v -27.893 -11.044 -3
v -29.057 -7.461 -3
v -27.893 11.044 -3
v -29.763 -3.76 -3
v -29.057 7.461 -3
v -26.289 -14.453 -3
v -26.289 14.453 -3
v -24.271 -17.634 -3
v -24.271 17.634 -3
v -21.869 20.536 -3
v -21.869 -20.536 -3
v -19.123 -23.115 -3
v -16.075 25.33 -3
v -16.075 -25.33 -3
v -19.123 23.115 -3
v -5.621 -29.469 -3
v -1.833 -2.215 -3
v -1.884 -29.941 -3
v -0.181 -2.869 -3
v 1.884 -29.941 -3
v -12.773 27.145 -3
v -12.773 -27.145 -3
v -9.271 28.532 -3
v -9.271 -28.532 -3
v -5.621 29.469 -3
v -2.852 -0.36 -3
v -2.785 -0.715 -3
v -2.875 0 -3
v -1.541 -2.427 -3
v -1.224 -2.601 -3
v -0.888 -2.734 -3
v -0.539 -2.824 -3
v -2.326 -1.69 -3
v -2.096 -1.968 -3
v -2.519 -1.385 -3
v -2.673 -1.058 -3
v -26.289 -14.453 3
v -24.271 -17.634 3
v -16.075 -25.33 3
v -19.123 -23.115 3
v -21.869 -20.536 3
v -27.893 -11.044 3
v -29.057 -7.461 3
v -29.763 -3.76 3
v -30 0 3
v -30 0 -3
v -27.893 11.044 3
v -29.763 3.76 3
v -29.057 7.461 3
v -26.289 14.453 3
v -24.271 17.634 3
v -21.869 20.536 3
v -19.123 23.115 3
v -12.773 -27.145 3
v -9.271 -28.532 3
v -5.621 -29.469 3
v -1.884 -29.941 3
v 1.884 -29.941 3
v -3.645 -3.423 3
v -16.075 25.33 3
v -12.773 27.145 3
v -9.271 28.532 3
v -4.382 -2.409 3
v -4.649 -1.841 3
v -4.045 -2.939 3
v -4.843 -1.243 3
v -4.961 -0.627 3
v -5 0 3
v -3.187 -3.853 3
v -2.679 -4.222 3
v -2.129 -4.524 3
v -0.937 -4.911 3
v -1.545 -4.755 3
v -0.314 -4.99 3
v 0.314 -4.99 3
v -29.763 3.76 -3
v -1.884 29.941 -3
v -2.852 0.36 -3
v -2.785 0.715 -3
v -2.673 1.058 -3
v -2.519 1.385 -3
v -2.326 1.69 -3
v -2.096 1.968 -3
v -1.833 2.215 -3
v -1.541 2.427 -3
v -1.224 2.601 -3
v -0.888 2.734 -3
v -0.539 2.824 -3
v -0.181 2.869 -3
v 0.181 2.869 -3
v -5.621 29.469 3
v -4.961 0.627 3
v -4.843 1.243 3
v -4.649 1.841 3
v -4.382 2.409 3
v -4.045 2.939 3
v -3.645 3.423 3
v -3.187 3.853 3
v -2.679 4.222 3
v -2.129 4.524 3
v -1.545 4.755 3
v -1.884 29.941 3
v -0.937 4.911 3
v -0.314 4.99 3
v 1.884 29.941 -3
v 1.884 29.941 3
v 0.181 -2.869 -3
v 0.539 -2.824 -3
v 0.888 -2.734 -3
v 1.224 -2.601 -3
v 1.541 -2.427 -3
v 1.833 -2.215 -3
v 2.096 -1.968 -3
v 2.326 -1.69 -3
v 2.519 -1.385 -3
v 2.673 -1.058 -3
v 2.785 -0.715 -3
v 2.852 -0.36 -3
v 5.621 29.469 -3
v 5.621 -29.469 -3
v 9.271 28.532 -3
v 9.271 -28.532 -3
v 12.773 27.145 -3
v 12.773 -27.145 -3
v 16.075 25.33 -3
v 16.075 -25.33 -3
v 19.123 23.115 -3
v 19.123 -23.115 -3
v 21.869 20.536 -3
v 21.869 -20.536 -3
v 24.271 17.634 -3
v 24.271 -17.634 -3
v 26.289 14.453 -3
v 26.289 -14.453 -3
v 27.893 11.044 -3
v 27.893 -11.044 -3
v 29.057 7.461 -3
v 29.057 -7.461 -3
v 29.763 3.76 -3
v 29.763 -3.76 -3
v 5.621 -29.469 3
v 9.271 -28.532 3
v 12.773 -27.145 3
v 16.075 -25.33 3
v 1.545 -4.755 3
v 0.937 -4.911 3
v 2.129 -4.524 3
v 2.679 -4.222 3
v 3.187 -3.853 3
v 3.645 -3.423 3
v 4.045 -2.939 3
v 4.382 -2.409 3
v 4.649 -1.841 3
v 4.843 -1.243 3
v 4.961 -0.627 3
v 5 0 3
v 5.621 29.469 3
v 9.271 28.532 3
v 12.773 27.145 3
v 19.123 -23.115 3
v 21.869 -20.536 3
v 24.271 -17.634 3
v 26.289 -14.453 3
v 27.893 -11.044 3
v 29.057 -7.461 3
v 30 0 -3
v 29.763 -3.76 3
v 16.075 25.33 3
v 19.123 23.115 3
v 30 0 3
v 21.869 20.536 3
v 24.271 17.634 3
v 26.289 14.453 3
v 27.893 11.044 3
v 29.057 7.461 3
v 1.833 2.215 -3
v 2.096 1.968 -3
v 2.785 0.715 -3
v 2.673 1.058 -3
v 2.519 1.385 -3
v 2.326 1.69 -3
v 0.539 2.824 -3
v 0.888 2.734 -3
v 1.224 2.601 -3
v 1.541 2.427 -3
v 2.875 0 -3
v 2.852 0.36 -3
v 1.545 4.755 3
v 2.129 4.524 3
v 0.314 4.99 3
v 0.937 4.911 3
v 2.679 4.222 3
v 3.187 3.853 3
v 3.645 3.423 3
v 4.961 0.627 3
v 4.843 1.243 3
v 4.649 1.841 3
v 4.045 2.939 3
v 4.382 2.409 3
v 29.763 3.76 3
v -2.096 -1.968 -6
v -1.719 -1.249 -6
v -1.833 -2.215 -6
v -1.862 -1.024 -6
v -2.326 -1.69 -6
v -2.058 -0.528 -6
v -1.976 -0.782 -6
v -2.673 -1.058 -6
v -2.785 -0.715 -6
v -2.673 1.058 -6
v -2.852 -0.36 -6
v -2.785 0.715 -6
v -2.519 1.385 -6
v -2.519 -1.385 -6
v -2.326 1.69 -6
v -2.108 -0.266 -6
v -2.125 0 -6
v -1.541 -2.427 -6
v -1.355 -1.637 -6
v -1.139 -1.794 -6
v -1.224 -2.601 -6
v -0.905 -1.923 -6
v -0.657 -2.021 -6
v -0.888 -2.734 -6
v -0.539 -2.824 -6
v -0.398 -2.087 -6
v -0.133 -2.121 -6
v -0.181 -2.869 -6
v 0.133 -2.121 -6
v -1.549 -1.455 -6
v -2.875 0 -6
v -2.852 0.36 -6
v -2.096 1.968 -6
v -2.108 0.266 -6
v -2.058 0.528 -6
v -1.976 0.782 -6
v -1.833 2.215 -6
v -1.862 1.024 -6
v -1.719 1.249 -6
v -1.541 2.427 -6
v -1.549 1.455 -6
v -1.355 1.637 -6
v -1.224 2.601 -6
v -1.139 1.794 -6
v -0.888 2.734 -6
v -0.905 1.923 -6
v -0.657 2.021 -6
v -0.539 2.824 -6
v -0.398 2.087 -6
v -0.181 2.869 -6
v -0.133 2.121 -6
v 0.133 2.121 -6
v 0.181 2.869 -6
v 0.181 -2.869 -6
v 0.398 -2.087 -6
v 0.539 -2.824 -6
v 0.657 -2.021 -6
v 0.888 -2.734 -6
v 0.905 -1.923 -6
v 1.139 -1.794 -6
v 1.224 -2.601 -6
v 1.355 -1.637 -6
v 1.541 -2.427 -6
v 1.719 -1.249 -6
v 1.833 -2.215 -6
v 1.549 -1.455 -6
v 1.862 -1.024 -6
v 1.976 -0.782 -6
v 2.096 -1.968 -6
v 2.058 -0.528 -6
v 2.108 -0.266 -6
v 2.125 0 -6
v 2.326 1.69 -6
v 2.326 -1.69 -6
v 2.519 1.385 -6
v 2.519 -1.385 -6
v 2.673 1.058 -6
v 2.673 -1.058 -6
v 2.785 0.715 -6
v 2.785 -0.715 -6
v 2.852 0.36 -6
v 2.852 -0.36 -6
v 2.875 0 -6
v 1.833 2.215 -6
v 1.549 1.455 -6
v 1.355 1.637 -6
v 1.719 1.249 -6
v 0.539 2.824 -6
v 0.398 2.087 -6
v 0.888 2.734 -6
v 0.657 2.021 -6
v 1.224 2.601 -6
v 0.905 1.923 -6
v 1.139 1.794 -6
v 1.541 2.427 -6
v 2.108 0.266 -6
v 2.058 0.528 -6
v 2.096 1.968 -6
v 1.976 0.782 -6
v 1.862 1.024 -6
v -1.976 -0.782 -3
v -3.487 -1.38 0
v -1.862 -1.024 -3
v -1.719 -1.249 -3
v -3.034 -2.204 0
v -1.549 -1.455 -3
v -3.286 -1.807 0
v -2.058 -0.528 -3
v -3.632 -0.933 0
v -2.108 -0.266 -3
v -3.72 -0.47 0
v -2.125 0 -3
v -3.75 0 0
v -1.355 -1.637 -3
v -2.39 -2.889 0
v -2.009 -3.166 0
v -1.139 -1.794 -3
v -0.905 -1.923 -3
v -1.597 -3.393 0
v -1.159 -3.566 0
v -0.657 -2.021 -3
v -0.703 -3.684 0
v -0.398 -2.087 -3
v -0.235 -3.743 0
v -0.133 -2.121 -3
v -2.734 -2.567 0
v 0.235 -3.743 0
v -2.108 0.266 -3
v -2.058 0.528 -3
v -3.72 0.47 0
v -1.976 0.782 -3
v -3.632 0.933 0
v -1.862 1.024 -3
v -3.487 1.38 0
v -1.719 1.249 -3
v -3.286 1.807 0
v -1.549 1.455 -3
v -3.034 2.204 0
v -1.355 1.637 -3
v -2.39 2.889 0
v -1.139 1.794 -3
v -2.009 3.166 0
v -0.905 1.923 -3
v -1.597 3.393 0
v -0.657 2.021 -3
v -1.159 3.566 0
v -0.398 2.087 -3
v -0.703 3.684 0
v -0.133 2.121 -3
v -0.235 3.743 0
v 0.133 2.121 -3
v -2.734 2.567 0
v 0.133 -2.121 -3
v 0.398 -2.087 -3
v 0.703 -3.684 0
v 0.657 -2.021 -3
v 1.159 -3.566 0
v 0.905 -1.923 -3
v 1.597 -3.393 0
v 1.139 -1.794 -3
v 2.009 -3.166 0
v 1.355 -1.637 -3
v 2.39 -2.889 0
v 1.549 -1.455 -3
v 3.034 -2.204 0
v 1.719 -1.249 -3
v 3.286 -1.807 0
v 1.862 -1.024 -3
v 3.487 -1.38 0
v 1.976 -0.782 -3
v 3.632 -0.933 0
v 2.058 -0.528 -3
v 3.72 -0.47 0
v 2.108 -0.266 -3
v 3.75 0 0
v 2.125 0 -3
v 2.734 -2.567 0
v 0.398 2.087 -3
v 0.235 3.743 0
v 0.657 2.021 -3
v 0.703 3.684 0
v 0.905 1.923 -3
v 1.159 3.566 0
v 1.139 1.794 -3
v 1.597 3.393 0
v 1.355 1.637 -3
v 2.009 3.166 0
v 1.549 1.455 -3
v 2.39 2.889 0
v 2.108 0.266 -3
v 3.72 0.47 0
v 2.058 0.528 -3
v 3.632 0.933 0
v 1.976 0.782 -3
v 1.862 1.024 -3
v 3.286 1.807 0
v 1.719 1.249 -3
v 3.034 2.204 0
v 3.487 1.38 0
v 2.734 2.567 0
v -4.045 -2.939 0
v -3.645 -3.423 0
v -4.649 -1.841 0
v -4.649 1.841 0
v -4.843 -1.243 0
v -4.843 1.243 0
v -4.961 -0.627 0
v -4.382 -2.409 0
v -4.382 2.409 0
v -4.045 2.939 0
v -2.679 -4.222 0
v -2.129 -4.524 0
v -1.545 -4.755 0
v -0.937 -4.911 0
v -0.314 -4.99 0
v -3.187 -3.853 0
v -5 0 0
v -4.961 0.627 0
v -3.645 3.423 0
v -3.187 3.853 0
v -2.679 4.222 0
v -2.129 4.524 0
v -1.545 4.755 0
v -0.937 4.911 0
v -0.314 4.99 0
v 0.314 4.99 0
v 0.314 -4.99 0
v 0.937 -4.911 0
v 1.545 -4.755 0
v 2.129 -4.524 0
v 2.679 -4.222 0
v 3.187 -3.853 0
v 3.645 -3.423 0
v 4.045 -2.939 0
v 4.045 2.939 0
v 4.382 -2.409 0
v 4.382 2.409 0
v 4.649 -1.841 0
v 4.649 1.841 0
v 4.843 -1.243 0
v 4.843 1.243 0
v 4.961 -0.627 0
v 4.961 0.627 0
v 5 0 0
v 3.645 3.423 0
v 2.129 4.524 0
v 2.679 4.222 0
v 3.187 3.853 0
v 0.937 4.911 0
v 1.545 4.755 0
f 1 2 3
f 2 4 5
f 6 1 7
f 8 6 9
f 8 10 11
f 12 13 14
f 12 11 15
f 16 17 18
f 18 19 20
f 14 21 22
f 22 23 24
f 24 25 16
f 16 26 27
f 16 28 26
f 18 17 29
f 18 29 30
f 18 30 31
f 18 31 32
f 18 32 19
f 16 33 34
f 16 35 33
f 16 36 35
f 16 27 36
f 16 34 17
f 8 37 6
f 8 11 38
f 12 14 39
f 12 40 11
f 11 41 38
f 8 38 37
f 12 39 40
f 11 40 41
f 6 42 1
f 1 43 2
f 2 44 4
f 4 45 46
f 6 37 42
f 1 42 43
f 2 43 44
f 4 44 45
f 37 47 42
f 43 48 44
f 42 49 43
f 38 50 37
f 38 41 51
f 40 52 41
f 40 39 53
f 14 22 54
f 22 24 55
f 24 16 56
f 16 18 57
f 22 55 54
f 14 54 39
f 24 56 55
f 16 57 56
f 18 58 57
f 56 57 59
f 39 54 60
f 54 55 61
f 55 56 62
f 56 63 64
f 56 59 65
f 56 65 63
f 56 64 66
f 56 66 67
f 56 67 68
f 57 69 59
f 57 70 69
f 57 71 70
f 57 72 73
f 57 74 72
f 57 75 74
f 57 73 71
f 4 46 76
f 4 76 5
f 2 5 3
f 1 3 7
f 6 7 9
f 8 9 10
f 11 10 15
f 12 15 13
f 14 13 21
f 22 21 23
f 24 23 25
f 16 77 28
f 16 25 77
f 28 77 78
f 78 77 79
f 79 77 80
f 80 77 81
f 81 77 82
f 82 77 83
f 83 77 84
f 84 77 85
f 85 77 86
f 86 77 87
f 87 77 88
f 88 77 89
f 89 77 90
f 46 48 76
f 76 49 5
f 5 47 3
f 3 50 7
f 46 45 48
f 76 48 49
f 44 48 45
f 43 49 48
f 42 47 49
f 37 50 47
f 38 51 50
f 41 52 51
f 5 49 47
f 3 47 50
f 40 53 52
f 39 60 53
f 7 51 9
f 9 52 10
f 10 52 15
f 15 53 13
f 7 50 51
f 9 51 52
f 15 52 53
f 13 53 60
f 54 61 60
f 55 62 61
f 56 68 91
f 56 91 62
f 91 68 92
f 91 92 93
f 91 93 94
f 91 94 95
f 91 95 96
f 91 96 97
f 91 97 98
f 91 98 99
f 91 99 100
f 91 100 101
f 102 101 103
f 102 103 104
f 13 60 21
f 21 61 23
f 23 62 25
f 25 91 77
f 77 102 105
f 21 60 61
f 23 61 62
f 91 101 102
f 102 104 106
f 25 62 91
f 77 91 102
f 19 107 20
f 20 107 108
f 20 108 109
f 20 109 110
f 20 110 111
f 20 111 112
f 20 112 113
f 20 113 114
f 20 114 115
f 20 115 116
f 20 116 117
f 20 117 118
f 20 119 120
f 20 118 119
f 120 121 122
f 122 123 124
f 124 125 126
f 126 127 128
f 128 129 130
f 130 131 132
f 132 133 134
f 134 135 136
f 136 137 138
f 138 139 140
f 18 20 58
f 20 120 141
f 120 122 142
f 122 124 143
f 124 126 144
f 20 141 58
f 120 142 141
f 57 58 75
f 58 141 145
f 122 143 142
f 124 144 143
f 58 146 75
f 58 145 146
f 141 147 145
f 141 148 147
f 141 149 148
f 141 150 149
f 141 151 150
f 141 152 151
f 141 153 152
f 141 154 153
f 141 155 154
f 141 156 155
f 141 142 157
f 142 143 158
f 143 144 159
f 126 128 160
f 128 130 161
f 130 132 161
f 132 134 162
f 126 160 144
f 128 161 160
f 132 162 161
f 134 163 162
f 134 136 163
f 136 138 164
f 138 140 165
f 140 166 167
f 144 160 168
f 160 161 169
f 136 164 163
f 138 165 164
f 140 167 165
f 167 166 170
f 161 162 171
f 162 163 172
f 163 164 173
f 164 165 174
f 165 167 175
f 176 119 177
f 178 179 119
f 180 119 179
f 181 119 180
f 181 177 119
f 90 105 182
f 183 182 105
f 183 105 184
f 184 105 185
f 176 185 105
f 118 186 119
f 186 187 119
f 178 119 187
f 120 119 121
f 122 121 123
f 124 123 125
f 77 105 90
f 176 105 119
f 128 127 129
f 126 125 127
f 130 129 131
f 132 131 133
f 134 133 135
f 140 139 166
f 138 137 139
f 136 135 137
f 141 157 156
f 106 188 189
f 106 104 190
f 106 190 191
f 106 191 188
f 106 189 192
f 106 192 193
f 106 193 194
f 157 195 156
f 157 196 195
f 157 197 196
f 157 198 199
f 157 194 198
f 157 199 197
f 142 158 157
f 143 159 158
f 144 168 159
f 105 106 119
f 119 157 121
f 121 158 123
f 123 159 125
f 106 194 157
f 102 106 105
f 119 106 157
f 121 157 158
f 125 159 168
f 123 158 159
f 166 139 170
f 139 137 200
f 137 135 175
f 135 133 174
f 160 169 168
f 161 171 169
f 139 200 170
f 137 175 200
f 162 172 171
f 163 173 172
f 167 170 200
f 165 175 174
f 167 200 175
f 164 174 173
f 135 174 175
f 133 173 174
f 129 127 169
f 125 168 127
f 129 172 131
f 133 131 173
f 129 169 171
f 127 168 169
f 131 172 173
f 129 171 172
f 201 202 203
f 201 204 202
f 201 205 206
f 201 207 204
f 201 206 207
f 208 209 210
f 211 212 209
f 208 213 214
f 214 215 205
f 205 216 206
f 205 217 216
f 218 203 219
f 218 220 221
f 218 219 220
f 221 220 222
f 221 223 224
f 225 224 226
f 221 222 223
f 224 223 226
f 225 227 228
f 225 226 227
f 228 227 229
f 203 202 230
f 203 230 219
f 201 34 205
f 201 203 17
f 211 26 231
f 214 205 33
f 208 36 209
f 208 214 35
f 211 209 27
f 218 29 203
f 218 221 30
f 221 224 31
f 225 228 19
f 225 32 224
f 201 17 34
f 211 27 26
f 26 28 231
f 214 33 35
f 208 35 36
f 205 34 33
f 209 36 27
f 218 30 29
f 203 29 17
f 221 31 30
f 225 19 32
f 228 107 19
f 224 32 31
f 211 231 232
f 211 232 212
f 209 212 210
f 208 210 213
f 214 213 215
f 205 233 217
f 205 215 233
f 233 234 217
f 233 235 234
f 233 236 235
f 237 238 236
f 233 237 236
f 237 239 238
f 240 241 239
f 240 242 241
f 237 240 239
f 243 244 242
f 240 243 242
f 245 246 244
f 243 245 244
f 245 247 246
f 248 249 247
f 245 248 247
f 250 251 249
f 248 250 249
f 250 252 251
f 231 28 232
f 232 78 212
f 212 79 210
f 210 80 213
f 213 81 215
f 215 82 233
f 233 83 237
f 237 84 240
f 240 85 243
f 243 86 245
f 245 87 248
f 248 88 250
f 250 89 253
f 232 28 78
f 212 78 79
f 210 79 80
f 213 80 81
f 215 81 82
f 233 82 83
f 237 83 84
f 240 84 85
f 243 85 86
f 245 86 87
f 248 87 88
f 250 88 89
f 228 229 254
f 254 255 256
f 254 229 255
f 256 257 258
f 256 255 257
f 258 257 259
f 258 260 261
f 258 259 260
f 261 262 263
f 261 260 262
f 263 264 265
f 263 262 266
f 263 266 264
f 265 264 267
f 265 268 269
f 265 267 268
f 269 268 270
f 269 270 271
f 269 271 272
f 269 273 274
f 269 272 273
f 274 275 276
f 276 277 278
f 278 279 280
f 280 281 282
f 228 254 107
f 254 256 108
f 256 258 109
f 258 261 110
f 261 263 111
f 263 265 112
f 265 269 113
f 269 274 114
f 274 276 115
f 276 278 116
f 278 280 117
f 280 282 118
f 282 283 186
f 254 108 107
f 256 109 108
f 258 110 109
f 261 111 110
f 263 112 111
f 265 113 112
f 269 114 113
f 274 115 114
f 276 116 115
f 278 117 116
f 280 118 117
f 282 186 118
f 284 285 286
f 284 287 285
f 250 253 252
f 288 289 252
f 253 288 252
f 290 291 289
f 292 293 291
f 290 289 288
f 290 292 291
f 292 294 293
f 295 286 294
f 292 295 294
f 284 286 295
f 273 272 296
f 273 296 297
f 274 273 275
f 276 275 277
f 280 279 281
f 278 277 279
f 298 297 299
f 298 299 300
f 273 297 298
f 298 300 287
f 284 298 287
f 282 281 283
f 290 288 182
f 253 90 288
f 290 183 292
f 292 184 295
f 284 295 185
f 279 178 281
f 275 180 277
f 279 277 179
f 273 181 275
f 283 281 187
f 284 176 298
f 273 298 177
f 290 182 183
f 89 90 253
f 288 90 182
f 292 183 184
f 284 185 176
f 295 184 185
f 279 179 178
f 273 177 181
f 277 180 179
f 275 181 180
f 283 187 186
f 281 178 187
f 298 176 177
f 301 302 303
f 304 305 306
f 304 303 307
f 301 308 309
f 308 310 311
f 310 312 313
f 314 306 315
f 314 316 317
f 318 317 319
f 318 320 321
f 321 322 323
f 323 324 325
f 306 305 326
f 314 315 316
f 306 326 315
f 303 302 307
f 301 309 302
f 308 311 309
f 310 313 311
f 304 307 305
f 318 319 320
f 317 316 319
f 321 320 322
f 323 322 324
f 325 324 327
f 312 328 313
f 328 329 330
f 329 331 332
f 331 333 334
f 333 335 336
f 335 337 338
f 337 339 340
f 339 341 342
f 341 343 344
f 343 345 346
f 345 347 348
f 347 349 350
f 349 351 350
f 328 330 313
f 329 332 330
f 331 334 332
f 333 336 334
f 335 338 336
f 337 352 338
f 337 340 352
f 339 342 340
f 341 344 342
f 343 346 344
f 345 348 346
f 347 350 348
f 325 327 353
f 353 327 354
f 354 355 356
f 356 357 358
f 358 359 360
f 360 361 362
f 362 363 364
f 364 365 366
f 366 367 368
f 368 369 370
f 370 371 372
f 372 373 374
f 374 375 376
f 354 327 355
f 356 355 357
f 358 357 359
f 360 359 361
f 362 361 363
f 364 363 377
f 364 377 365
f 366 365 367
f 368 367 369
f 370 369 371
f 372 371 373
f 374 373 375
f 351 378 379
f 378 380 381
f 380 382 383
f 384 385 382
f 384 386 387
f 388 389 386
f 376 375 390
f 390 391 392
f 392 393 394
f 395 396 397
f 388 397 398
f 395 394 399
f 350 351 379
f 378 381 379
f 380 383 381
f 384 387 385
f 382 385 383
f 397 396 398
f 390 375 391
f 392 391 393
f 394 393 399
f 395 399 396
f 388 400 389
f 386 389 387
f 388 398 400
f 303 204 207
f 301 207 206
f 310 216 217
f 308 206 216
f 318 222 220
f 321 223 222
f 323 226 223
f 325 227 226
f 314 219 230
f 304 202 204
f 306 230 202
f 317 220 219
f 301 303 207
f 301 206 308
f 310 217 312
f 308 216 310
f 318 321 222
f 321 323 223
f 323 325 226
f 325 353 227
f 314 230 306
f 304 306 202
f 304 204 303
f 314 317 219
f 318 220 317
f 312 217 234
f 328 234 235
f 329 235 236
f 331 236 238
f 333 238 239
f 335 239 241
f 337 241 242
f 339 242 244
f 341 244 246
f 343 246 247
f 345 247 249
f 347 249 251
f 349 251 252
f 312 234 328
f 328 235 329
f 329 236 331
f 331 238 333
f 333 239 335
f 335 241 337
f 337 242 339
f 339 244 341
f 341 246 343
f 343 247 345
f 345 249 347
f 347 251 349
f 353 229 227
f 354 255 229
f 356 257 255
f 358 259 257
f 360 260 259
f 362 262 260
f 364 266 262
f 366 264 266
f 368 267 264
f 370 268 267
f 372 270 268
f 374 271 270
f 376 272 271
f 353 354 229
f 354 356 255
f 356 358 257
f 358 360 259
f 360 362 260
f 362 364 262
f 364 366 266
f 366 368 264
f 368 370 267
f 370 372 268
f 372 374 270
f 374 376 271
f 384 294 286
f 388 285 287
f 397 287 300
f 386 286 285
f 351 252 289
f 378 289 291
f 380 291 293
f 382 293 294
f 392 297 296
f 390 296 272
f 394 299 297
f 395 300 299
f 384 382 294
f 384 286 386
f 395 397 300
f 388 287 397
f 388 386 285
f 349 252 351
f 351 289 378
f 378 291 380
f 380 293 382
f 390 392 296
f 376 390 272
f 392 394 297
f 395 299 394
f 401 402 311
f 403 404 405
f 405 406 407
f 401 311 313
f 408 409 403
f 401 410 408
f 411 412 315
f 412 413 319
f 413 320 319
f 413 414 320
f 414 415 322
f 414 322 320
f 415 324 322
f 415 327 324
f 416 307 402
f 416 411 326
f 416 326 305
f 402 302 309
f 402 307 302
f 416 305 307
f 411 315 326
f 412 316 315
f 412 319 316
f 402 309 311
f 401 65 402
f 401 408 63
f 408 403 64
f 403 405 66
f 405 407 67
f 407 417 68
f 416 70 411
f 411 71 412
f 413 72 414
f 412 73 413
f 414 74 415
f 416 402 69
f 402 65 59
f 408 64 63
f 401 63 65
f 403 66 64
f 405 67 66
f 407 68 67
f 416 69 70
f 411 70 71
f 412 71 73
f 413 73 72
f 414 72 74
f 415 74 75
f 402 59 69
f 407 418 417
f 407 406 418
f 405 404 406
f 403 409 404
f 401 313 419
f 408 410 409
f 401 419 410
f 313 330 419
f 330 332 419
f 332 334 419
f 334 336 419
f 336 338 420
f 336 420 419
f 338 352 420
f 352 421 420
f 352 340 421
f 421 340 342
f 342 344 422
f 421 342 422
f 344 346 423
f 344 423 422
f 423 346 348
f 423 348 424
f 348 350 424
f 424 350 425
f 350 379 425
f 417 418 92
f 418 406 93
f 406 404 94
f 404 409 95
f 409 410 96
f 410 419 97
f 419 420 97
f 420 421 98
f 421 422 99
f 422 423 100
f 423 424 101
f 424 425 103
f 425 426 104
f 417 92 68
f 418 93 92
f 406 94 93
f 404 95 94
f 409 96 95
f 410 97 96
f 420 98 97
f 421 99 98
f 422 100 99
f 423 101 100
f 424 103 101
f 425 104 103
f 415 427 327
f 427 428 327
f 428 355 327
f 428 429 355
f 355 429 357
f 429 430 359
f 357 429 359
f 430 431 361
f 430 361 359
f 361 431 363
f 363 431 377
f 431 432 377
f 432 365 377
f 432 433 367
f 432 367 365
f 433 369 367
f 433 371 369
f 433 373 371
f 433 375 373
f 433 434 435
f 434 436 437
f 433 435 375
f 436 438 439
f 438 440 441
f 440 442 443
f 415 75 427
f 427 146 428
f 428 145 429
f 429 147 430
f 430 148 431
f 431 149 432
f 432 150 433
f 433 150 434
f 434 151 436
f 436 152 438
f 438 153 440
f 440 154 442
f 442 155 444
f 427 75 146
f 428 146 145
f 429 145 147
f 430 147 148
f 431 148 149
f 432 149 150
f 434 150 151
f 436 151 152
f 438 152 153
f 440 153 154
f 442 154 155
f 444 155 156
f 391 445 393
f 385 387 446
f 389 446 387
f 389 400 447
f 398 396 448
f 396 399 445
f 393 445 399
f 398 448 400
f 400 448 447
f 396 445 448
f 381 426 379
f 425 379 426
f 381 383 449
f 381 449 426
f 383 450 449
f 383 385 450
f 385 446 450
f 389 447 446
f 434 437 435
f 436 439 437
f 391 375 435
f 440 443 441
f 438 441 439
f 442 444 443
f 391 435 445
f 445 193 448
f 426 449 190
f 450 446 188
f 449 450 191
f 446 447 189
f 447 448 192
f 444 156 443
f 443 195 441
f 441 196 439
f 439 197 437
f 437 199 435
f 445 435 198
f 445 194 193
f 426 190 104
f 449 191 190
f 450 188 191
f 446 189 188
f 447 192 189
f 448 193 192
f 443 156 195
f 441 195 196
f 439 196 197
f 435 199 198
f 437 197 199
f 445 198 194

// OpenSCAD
$fn = 50;


difference() {
	union() {
		translate(v = [0, 0, -3.0000000000]) {
			cylinder(h = 6, r = 30.0000000000);
		}
		#translate(v = [0, 0, -6.0000000000]) {
			cylinder(h = 6, r = 2.8750000000);
		}
	}
	union() {
		translate(v = [0, 0, 0]) {
			rotate(a = [0, 0, 0]) {
				difference() {
					union() {
						translate(v = [0, 0, -6.0000000000]) {
							cylinder(h = 6, r = 2.0000000000);
						}
						translate(v = [0, 0, -3]) {
							cylinder(h = 3, r1 = 2.1250000000, r2 = 3.7500000000);
						}
						translate(v = [0, 0, -6.0000000000]) {
							cylinder(h = 6, r = 2.1250000000);
						}
						translate(v = [0, 0, -6.0000000000]) {
							cylinder(h = 6, r = 2.0000000000);
						}
					}
					union();
				}
			}
		}
		#cylinder(h = 3, r = 5.0000000000);
	}
}
